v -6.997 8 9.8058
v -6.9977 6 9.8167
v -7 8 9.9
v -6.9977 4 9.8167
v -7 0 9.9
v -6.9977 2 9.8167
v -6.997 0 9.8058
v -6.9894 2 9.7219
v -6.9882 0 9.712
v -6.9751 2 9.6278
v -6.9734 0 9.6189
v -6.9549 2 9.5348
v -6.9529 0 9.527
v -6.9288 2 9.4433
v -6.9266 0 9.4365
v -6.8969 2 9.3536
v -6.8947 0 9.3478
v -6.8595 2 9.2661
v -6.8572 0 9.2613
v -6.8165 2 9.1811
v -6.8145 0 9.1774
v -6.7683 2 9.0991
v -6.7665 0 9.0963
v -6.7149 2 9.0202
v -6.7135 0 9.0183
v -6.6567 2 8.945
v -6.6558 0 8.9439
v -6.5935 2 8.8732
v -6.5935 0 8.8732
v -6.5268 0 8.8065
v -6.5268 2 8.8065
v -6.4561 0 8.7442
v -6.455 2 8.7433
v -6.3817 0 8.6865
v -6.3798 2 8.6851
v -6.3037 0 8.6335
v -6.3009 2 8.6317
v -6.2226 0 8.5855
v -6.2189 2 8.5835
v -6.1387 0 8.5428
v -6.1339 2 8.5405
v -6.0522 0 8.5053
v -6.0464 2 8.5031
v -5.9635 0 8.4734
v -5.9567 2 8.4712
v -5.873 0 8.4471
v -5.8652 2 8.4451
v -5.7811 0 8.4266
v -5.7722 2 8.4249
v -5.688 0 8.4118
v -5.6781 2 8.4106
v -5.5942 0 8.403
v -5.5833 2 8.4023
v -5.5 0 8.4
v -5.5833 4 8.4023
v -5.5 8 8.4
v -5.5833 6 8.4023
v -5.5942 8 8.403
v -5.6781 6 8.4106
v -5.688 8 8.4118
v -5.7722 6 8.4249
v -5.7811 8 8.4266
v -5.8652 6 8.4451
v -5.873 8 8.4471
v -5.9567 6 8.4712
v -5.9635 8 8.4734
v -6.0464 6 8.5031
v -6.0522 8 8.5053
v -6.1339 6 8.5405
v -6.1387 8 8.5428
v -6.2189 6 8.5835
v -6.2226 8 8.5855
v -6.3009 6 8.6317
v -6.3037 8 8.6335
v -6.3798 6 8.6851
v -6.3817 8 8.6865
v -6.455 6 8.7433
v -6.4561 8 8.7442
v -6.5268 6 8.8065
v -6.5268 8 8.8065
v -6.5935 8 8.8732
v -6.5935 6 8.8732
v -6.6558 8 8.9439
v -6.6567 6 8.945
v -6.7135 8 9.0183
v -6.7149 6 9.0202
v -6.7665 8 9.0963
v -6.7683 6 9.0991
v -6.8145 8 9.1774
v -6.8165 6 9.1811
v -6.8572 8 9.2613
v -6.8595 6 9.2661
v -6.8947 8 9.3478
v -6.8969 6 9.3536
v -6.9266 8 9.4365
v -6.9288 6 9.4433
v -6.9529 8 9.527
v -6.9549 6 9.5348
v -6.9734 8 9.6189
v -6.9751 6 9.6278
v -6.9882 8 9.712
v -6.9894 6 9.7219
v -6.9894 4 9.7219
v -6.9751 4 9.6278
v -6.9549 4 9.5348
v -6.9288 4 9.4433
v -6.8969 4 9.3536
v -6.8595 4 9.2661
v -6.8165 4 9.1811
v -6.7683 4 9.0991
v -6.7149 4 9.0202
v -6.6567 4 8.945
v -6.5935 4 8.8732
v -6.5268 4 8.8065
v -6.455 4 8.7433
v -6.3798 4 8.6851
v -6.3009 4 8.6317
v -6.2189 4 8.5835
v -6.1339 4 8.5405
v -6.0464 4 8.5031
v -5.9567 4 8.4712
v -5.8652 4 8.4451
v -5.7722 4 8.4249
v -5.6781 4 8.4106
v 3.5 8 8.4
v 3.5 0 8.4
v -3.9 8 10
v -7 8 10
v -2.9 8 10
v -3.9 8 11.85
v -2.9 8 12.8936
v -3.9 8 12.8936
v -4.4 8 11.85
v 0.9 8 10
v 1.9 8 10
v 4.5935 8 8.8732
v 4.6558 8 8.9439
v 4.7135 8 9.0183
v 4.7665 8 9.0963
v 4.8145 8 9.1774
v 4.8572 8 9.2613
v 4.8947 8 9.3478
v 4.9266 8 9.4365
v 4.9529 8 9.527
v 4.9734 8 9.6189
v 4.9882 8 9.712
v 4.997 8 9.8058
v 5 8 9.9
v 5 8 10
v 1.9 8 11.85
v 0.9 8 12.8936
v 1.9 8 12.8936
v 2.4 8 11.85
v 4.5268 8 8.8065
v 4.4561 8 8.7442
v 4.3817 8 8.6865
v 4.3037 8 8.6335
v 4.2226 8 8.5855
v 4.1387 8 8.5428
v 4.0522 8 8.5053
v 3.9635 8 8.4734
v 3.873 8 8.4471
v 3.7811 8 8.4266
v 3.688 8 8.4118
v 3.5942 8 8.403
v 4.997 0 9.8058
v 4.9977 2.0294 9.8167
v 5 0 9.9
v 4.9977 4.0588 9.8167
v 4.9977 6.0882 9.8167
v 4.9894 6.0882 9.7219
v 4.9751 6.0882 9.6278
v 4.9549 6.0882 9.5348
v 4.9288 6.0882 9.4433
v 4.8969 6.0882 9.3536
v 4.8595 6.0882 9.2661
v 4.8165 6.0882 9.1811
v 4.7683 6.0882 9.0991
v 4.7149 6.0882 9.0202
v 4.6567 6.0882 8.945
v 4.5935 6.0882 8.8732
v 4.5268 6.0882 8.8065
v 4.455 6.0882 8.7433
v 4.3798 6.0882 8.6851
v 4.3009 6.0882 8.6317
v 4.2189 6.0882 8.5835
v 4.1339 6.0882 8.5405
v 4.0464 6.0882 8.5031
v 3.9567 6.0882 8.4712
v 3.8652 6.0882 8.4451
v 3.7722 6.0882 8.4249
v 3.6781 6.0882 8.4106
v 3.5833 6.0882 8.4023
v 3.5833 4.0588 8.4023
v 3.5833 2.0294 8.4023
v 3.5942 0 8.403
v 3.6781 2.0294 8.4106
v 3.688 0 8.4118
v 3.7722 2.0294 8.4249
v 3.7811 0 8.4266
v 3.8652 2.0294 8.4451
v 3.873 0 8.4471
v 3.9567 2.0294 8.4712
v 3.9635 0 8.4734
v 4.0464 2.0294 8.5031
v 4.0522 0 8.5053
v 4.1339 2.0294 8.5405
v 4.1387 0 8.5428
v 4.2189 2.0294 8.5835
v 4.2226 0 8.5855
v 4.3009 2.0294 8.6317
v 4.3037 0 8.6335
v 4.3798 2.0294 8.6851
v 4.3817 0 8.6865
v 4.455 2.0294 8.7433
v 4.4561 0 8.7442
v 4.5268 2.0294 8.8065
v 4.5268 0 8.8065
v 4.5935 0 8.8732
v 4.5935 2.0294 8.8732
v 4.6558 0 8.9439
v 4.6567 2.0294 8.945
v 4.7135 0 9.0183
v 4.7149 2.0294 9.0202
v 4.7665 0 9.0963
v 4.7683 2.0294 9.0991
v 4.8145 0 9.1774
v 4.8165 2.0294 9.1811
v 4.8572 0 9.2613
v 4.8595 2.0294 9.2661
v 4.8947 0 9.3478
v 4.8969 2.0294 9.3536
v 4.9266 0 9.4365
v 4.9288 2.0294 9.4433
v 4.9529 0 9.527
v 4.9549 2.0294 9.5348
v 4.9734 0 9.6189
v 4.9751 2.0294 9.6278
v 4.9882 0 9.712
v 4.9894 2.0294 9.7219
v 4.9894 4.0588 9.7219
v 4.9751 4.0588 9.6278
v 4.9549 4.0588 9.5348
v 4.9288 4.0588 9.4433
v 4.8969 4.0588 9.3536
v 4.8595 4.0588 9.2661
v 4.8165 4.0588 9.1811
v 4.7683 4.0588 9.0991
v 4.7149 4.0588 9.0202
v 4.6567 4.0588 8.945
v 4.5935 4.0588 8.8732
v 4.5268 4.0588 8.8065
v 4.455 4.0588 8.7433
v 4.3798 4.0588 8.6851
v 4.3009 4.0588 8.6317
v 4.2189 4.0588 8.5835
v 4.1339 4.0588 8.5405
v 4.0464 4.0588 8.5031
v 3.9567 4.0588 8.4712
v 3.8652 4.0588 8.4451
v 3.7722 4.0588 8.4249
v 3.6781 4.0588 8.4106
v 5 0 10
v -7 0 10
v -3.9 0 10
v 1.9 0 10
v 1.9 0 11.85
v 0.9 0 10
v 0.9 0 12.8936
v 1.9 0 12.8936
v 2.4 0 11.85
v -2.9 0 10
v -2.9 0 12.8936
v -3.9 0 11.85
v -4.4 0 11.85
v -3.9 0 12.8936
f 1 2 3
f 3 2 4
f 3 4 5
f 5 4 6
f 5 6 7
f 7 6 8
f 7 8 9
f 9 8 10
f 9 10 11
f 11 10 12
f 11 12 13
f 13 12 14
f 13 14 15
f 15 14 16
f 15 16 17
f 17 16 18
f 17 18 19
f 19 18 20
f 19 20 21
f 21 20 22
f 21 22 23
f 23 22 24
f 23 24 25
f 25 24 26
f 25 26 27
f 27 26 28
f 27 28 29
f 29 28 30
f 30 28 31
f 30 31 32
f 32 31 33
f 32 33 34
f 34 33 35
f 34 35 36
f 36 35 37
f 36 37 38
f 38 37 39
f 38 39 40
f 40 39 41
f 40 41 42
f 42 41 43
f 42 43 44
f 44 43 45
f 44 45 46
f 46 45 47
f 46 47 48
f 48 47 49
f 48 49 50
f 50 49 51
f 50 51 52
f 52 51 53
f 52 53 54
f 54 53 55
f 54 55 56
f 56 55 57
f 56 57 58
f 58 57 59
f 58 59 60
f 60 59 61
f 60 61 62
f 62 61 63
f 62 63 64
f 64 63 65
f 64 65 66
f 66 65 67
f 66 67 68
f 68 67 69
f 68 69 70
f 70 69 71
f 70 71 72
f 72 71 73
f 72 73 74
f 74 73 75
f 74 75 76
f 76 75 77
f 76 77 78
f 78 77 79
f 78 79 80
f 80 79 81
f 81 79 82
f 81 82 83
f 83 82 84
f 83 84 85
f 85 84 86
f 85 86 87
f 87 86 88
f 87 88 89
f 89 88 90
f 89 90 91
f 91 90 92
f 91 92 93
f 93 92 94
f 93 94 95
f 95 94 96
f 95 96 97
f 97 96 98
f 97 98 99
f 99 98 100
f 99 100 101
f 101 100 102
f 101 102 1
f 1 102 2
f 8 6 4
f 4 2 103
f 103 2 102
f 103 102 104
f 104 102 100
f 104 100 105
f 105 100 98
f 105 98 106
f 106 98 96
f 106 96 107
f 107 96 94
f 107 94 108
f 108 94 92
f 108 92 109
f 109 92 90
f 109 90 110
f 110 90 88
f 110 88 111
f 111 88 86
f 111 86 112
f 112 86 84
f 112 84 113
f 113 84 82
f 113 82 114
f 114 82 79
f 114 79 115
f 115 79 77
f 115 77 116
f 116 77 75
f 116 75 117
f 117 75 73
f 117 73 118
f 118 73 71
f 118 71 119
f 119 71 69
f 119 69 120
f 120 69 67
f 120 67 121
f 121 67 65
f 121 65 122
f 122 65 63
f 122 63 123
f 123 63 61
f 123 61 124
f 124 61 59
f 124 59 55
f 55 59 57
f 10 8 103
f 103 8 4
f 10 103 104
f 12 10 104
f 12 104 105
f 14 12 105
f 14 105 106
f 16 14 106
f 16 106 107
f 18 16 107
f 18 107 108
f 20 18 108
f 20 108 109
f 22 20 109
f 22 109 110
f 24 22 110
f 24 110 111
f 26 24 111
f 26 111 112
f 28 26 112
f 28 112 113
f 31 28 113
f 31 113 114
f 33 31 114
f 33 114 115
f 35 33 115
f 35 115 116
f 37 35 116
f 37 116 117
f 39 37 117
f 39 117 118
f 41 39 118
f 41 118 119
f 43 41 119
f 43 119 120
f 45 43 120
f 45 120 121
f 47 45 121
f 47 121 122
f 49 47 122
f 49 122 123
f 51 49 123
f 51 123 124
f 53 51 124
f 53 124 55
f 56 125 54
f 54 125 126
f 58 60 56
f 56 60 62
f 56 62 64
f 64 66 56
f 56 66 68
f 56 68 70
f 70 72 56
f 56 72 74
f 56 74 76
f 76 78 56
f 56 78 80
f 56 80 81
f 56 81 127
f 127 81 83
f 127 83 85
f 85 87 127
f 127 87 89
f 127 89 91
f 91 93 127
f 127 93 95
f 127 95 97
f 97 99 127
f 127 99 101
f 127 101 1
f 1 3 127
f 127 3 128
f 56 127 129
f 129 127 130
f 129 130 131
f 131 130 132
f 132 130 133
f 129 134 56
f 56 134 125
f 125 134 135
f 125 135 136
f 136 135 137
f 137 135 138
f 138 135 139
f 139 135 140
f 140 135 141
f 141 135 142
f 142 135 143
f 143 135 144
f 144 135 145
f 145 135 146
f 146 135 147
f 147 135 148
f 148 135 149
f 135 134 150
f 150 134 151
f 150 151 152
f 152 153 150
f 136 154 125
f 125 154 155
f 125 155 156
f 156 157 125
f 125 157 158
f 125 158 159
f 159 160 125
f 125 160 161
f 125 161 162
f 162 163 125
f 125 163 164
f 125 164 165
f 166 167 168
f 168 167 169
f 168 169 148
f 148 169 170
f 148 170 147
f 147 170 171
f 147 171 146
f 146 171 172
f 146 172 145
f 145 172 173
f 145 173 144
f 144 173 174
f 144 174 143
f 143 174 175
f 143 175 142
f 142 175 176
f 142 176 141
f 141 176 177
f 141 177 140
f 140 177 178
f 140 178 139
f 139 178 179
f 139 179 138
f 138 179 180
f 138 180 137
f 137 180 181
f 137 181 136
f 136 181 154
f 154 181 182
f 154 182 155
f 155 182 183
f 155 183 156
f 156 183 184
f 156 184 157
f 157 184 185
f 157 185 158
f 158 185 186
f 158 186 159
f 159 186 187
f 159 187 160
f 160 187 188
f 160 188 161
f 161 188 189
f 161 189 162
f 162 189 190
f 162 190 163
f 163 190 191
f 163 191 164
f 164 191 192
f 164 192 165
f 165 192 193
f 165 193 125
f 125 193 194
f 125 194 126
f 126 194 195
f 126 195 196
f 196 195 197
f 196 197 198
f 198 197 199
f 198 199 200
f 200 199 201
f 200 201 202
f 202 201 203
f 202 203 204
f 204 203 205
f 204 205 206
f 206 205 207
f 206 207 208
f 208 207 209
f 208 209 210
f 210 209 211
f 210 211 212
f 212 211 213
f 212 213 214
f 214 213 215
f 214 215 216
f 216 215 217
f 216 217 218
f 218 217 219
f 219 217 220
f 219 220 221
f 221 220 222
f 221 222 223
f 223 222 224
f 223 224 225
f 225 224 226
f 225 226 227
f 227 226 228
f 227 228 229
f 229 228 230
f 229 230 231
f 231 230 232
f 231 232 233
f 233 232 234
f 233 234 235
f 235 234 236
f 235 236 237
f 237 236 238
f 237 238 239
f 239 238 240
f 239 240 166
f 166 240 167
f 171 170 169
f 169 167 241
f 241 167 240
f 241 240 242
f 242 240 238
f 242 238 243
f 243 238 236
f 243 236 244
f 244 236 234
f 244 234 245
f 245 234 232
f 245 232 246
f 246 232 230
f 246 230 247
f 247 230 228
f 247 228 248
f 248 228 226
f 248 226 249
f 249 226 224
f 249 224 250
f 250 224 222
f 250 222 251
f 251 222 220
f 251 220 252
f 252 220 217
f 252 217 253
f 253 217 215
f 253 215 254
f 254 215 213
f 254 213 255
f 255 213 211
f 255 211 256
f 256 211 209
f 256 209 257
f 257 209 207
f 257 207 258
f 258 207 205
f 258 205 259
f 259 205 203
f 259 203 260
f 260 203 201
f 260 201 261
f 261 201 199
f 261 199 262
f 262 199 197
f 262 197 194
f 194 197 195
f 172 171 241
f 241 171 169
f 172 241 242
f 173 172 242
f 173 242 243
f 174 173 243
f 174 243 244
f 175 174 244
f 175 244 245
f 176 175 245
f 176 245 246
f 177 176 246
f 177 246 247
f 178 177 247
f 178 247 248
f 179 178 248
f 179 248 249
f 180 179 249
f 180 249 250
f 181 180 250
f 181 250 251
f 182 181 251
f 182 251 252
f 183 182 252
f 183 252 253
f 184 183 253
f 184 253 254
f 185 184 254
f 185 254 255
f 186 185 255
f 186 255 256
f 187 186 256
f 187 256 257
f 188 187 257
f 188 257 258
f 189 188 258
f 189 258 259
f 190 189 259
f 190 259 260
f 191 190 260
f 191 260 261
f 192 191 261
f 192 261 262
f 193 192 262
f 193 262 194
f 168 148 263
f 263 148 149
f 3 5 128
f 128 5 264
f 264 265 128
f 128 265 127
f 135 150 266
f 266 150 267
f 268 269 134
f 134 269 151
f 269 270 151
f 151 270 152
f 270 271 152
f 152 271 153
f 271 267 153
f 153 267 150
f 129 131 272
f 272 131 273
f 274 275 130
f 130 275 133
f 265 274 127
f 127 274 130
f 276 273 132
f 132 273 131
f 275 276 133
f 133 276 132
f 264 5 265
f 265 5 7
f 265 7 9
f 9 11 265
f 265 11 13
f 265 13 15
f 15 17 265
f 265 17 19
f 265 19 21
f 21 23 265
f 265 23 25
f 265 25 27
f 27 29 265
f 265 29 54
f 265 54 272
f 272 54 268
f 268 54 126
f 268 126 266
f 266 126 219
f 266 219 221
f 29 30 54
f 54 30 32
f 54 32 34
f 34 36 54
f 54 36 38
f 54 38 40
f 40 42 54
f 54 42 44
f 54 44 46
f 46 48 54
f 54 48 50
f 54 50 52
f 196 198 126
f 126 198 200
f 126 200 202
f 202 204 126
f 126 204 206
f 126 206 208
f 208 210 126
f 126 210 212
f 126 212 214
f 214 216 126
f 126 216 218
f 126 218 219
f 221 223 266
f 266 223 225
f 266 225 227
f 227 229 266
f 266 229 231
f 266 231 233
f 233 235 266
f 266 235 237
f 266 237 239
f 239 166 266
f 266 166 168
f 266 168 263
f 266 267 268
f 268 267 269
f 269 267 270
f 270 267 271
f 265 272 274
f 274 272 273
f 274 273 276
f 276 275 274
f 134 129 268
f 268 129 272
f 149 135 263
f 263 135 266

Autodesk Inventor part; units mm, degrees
ref_plane "YZ Plane" through (0, 0, 0) normal (1, 0, 0) x (0, 1, 0)
ref_plane "XZ Plane" through (0, 0, 0) normal (0, 1, 0) x (-1, 0, 0)
ref_plane "XY Plane" through (0, 0, 0) normal (0, 0, 1) x (1, 0, 0)
sketch "Skizze1" plane through (0, 0, 0) normal (0, 1, 0) x (-1, 0, 0)
  line L0 (10, 10) -> (-10, 10)
  line L1 (-10, 10) -> (-10, -10)
  line L2 (-10, -10) -> (10, -10)
  line L3 (10, -10) -> (10, 10)
  line L4 (10, 10) -> (-10, -10) construction
  line L5 (-10, 10) -> (10, -10) construction
  point P0 (0, 0)
  dimension "d0" = 20
  dimension "d1" = 20
extrude "Extrusion1" add sketch "Skizze1" along normal blind 34.5
sketch "Skizze2" plane through (0, 0, 0) normal (0, -1, 0) x (1, 0, 0)
  line L0 (-8.9654, -8) -> (-1.6431, -8)
  line L1 (8, 1.6431) -> (8, 9.2)
  line L2 (-10, 10) -> (10, 10)
  line L3 (-10, -10) -> (-10, 10)
  line L4 (8, 10) -> (-10, 10)
  line L5 (-10, 10) -> (-10, -8)
  line L6 (-10, -8) -> (8, -8)
  line L7 (8, -8) -> (8, 10)
  line L8 (10, 10) -> (10, -10)
  line L9 (-10, 10) -> (10, 10)
  line L10 (-10, -10) -> (-10, 10)
  line L11 (10, -10) -> (-10, -10)
  circle A0 centre (-1.6431, 1.6431) radius 9.6431
  point P0 (0, 0)
extrude "Extrusion2" cut sketch "Skizze2" against normal through all contours L0 L6 L7 L1 L2 L8 L11 L3 | A0 L7 L6
sketch "Skizze3" plane through (0, 34.5, 0) normal (0, 1, 0) x (1, 0, 0)
  line L0 (0.9, -9.6) -> (0.9, -12.8936) projected
  line L1 (0.9, -12.8936) -> (1.9, -12.8936) projected
  line L2 (1.9, -12.8936) -> (2.4, -11.85) projected
  line L3 (2.4, -11.85) -> (1.9, -11.85) projected
  line L4 (1.9, -12.8936) -> (1.9, -9.6) projected
  line L5 (-2.9, -12.8936) -> (-2.9, -9.6) projected
  line L6 (-3.9, -9.6) -> (-3.9, -12.8936) projected
  line L7 (-3.9, -11.85) -> (-4.4, -11.85) projected
  line L8 (-4.4, -11.85) -> (-3.9, -12.8936) projected
  line L9 (-3.9, -12.8936) -> (-2.9, -12.8936) projected
  line L10 (0.9, -12.8936) -> (1.9, -12.8936)
  line L11 (1.9, -12.8936) -> (1.9, -9.6)
  line L12 (1.9, -9.6) -> (0.9, -9.6)
  line L13 (0.9, -9.6) -> (0.9, -12.8936)
  line L14 (-2.9, -12.8936) -> (-3.9, -12.8936)
  line L15 (-3.9, -12.8936) -> (-3.9, -9.6)
  line L16 (-3.9, -9.6) -> (-2.9, -9.6)
  line L17 (-2.9, -9.6) -> (-2.9, -12.8936)
  point P0 (0, 0)
extrude "Extrusion3" add sketch "Skizze3" against normal up to surface (34.5 mm away)
sketch "Skizze6" plane through (0, 34.5, 0) normal (0, 1, 0) x (1, 0, 0)
  line L0 (-7, -11.6) -> (5, -11.6)
  line L1 (5, -11.6) -> (5, -8.4)
  line L2 (5, -8.4) -> (-7, -8.4)
  line L3 (-7, -8.4) -> (-7, -11.6)
  line L4 (-2.9, -10) -> (0.9, -10) projected
  line L5 (-7, -11.6) -> (5, -8.4) construction
  line L6 (5, -11.6) -> (-7, -8.4) construction
  line L7 (-10, 8) -> (-10, -10) projected
  line L8 (-10, -10) -> (8, -10)
  line L9 (8, -10) -> (8, 8)
  line L10 (8, 8) -> (-10, 8)
  line L11 (-10, 8) -> (-10, -10)
  point P0 (0, 0)
  point P1 (-1, -10)
  point P2 (5, -10)
  point P3 (-7, -10)
  dimension "d26" = 12
  dimension "d27" = 3.2
extrude "Extrusion6" cut sketch "Skizze6" against normal through all both and the other way through all contours L8 L7 L10 L9 L1 L2 L3
move faces "Verschieben2" translate (0, -26.5, 0) faces at (-0.3667, 34.5, 8.9333)
fillet "Rundung5" radius 1.5 2 edges at (5, 4, 8.4) (-7, 4, 8.4)
properties part number "CableClip"
